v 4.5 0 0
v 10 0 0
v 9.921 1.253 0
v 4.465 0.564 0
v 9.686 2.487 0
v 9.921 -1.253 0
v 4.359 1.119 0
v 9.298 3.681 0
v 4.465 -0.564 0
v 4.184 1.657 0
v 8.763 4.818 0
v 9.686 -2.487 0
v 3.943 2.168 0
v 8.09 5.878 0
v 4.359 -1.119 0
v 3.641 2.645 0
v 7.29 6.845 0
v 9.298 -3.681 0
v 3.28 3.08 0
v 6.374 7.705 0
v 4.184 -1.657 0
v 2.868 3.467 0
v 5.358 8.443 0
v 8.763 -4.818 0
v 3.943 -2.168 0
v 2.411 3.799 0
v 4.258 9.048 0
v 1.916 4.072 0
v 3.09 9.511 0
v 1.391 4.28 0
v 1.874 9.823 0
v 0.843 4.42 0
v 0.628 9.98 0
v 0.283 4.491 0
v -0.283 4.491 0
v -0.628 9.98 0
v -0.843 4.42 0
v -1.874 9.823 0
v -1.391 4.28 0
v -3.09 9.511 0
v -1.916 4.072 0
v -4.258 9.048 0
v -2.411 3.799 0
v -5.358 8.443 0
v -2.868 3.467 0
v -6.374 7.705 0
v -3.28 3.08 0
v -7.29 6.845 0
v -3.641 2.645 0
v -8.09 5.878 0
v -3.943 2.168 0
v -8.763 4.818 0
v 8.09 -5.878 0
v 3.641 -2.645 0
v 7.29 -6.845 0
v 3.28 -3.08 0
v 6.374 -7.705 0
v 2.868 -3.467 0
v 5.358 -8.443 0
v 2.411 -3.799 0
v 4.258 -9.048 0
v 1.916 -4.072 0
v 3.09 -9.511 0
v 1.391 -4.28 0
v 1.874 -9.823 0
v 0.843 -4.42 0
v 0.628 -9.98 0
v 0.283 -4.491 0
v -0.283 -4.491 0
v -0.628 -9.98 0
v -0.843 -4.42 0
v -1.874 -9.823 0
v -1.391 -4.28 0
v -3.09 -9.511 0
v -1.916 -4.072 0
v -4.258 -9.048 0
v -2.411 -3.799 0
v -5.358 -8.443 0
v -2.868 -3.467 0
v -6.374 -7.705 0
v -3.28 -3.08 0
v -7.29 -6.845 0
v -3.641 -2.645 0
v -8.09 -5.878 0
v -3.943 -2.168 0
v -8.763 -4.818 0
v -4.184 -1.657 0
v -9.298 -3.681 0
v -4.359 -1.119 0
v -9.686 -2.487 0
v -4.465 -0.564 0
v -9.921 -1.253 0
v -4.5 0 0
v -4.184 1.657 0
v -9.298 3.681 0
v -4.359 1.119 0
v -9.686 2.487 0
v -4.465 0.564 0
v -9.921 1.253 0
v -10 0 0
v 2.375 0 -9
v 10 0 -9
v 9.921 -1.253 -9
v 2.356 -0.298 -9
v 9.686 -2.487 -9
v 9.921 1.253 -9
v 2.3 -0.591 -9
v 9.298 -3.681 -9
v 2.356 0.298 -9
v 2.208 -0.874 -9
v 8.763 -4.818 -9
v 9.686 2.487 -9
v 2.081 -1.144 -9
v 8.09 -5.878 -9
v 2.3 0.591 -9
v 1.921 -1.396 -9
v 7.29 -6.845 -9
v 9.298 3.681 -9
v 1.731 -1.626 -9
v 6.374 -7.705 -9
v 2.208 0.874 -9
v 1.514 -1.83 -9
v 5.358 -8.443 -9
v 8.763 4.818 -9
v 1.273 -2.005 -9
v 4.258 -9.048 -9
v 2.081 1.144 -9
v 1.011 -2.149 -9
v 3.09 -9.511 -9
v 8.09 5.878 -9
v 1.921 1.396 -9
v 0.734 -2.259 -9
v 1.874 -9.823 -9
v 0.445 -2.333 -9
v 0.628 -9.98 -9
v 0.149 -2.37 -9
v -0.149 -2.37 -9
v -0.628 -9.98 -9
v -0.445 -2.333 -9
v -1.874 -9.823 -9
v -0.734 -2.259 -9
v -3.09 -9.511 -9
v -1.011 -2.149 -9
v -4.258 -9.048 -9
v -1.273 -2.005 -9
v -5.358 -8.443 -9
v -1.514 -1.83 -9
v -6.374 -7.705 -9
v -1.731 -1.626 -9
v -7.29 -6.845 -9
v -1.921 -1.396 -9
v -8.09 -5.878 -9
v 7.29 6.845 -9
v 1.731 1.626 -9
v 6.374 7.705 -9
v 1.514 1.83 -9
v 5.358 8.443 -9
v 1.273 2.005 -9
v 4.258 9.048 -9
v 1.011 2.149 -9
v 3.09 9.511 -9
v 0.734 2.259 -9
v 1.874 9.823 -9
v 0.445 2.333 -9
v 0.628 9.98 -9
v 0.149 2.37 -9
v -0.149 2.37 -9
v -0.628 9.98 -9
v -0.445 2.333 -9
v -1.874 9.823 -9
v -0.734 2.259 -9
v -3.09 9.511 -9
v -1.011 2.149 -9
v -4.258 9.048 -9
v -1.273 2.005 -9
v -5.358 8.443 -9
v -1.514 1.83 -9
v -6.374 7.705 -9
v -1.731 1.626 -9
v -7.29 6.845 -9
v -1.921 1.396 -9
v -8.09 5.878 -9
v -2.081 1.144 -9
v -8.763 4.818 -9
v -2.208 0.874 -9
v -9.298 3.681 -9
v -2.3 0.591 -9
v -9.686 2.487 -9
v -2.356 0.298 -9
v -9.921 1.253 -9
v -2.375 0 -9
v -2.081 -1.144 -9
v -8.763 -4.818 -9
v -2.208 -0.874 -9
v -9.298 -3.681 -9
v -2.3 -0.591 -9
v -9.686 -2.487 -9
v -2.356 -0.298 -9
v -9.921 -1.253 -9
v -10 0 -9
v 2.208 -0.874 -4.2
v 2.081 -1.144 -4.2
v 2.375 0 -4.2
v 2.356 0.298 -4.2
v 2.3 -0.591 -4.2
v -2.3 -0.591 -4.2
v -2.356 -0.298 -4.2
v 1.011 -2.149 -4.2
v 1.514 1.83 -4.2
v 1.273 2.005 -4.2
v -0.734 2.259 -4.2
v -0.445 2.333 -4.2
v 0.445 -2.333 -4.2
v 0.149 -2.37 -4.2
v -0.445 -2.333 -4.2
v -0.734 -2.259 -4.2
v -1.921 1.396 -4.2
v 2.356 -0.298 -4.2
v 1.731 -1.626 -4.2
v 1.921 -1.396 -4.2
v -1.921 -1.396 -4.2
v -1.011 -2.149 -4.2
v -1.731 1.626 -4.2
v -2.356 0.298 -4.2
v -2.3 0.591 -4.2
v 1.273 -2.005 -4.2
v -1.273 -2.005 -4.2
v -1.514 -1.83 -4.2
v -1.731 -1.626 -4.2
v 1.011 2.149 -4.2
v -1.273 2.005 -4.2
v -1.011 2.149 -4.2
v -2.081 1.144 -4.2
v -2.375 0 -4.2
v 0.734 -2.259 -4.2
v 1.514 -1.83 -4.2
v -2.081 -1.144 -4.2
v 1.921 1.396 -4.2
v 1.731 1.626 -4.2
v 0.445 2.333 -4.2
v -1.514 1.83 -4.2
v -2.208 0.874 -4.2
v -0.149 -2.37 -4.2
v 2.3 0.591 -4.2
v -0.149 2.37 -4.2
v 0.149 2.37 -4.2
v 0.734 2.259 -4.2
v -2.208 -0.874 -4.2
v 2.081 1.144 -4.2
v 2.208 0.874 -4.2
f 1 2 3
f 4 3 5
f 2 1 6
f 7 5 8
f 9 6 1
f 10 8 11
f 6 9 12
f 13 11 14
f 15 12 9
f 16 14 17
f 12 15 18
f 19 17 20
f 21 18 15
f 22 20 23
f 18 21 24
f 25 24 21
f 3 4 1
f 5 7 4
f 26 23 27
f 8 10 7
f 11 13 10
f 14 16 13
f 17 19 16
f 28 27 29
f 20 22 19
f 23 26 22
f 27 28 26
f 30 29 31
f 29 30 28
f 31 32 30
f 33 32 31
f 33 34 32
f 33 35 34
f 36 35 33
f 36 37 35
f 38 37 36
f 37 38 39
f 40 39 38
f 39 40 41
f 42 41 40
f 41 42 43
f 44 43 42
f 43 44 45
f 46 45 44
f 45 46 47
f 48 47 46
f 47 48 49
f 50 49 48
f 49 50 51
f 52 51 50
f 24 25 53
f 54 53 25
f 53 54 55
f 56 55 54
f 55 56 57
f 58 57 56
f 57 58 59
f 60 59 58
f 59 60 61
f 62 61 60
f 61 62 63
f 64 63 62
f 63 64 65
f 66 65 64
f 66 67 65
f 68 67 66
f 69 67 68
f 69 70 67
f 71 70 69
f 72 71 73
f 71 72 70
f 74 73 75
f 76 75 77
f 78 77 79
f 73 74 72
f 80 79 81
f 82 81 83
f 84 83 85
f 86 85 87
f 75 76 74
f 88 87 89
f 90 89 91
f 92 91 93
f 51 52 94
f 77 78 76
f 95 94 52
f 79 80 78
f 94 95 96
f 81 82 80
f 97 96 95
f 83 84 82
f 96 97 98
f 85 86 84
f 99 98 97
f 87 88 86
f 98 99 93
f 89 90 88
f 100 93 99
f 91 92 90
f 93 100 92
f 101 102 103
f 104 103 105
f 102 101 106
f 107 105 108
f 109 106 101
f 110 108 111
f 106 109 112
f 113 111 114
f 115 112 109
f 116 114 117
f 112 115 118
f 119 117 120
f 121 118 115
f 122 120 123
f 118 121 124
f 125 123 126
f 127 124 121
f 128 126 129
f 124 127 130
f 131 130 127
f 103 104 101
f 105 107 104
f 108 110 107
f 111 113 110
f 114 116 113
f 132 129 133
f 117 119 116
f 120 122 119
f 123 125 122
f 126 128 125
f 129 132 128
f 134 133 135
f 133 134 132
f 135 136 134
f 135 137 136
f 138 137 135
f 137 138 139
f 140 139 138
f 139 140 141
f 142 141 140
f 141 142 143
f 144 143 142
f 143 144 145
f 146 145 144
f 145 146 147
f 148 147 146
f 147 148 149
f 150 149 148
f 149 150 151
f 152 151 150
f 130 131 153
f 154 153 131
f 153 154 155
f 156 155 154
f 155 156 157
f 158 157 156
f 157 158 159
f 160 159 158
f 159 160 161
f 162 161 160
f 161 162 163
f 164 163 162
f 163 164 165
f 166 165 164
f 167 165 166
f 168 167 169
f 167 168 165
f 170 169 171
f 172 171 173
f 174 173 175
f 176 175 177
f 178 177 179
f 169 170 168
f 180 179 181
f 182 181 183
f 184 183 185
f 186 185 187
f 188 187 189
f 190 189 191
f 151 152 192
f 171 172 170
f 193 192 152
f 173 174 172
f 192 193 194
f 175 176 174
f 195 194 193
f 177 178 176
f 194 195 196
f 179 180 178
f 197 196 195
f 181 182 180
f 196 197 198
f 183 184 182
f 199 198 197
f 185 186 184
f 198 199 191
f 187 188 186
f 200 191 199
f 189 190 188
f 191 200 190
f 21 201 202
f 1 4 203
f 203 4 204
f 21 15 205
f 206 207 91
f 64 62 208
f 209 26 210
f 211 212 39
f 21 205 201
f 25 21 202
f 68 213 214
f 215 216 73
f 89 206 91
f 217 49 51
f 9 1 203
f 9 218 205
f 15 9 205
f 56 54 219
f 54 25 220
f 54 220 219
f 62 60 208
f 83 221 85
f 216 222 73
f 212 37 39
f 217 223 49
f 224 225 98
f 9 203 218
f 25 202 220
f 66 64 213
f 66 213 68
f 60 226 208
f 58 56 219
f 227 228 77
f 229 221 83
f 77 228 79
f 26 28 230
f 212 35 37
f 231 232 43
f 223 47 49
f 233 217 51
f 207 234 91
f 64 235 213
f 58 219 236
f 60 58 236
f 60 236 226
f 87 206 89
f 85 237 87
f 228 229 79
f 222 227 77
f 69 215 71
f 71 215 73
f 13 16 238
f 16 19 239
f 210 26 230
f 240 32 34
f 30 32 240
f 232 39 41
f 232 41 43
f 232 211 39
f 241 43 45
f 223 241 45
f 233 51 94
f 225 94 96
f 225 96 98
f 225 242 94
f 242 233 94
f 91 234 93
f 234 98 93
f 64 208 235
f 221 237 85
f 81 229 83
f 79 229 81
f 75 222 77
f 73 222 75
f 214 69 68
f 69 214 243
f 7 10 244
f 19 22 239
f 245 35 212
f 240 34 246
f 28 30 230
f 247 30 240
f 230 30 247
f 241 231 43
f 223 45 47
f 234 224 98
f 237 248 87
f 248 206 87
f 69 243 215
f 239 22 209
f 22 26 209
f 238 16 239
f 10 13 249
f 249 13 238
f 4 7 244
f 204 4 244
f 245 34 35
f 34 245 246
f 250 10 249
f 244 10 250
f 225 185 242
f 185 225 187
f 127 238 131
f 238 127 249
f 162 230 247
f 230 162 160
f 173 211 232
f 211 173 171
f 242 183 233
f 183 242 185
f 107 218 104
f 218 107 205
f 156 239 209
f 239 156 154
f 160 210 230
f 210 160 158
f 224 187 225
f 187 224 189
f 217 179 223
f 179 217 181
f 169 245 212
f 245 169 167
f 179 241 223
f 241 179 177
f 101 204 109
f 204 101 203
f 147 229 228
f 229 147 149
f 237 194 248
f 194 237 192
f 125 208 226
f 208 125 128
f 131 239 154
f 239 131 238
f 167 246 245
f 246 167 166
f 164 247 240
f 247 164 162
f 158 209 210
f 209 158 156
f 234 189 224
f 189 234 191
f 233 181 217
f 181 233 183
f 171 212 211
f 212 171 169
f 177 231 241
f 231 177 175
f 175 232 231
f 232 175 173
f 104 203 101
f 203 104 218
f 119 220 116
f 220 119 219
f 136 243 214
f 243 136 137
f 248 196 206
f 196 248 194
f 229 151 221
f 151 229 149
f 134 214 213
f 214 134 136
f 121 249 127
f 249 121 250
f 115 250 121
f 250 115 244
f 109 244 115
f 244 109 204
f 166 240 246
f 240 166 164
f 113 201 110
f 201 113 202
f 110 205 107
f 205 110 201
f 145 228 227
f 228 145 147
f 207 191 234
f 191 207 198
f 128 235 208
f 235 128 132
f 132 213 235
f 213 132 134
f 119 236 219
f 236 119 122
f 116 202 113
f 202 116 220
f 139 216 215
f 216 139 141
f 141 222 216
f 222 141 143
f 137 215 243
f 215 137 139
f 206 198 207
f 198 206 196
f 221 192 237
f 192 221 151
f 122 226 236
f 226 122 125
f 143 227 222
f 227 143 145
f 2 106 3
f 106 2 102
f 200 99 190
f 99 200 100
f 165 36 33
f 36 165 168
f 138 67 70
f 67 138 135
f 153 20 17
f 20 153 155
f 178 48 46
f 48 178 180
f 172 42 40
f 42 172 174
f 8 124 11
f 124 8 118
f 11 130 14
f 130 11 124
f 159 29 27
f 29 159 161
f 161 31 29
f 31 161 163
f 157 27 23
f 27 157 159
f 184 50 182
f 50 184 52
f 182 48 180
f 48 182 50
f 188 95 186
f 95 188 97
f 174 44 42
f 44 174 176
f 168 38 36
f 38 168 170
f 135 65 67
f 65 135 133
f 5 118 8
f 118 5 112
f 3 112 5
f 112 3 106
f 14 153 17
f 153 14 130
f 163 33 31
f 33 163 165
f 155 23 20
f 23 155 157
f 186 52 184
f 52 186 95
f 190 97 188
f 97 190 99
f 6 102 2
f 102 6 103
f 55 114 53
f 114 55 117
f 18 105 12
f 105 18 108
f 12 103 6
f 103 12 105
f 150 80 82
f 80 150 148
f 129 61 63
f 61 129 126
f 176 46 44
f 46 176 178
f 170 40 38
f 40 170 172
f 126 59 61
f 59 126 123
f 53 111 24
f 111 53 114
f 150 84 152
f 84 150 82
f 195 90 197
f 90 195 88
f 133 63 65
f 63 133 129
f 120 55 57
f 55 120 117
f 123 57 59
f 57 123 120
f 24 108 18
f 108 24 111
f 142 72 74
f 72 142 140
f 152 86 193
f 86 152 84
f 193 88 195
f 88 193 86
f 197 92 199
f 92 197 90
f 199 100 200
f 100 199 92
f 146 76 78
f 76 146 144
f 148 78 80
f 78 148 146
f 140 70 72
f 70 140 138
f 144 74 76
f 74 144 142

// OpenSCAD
$fn = 50;


difference() {
	union() {
		translate(v = [0, 0, -9.0000000000]) {
			cylinder(h = 9, r = 10.0000000000);
		}
		cylinder(h = 0, r = 16.0000000000);
	}
	union() {
		translate(v = [0, 0, 0]) {
			rotate(a = [0, 0, 0]) {
				difference() {
					union() {
						#translate(v = [0, 0, -9.0000000000]) {
							cylinder(h = 9, r = 2.2500000000);
						}
						#translate(v = [0, 0, -4.2000000000]) {
							cylinder(h = 4.2000000000, r = 10.0000000000, r1 = 2.3750000000, r2 = 4.5000000000);
						}
						#translate(v = [0, 0, -9.0000000000]) {
							cylinder(h = 9, r = 2.3750000000);
						}
						#translate(v = [0, 0, -9.0000000000]) {
							cylinder(h = 9, r = 2.2500000000);
						}
					}
					union();
				}
			}
		}
	}
}
